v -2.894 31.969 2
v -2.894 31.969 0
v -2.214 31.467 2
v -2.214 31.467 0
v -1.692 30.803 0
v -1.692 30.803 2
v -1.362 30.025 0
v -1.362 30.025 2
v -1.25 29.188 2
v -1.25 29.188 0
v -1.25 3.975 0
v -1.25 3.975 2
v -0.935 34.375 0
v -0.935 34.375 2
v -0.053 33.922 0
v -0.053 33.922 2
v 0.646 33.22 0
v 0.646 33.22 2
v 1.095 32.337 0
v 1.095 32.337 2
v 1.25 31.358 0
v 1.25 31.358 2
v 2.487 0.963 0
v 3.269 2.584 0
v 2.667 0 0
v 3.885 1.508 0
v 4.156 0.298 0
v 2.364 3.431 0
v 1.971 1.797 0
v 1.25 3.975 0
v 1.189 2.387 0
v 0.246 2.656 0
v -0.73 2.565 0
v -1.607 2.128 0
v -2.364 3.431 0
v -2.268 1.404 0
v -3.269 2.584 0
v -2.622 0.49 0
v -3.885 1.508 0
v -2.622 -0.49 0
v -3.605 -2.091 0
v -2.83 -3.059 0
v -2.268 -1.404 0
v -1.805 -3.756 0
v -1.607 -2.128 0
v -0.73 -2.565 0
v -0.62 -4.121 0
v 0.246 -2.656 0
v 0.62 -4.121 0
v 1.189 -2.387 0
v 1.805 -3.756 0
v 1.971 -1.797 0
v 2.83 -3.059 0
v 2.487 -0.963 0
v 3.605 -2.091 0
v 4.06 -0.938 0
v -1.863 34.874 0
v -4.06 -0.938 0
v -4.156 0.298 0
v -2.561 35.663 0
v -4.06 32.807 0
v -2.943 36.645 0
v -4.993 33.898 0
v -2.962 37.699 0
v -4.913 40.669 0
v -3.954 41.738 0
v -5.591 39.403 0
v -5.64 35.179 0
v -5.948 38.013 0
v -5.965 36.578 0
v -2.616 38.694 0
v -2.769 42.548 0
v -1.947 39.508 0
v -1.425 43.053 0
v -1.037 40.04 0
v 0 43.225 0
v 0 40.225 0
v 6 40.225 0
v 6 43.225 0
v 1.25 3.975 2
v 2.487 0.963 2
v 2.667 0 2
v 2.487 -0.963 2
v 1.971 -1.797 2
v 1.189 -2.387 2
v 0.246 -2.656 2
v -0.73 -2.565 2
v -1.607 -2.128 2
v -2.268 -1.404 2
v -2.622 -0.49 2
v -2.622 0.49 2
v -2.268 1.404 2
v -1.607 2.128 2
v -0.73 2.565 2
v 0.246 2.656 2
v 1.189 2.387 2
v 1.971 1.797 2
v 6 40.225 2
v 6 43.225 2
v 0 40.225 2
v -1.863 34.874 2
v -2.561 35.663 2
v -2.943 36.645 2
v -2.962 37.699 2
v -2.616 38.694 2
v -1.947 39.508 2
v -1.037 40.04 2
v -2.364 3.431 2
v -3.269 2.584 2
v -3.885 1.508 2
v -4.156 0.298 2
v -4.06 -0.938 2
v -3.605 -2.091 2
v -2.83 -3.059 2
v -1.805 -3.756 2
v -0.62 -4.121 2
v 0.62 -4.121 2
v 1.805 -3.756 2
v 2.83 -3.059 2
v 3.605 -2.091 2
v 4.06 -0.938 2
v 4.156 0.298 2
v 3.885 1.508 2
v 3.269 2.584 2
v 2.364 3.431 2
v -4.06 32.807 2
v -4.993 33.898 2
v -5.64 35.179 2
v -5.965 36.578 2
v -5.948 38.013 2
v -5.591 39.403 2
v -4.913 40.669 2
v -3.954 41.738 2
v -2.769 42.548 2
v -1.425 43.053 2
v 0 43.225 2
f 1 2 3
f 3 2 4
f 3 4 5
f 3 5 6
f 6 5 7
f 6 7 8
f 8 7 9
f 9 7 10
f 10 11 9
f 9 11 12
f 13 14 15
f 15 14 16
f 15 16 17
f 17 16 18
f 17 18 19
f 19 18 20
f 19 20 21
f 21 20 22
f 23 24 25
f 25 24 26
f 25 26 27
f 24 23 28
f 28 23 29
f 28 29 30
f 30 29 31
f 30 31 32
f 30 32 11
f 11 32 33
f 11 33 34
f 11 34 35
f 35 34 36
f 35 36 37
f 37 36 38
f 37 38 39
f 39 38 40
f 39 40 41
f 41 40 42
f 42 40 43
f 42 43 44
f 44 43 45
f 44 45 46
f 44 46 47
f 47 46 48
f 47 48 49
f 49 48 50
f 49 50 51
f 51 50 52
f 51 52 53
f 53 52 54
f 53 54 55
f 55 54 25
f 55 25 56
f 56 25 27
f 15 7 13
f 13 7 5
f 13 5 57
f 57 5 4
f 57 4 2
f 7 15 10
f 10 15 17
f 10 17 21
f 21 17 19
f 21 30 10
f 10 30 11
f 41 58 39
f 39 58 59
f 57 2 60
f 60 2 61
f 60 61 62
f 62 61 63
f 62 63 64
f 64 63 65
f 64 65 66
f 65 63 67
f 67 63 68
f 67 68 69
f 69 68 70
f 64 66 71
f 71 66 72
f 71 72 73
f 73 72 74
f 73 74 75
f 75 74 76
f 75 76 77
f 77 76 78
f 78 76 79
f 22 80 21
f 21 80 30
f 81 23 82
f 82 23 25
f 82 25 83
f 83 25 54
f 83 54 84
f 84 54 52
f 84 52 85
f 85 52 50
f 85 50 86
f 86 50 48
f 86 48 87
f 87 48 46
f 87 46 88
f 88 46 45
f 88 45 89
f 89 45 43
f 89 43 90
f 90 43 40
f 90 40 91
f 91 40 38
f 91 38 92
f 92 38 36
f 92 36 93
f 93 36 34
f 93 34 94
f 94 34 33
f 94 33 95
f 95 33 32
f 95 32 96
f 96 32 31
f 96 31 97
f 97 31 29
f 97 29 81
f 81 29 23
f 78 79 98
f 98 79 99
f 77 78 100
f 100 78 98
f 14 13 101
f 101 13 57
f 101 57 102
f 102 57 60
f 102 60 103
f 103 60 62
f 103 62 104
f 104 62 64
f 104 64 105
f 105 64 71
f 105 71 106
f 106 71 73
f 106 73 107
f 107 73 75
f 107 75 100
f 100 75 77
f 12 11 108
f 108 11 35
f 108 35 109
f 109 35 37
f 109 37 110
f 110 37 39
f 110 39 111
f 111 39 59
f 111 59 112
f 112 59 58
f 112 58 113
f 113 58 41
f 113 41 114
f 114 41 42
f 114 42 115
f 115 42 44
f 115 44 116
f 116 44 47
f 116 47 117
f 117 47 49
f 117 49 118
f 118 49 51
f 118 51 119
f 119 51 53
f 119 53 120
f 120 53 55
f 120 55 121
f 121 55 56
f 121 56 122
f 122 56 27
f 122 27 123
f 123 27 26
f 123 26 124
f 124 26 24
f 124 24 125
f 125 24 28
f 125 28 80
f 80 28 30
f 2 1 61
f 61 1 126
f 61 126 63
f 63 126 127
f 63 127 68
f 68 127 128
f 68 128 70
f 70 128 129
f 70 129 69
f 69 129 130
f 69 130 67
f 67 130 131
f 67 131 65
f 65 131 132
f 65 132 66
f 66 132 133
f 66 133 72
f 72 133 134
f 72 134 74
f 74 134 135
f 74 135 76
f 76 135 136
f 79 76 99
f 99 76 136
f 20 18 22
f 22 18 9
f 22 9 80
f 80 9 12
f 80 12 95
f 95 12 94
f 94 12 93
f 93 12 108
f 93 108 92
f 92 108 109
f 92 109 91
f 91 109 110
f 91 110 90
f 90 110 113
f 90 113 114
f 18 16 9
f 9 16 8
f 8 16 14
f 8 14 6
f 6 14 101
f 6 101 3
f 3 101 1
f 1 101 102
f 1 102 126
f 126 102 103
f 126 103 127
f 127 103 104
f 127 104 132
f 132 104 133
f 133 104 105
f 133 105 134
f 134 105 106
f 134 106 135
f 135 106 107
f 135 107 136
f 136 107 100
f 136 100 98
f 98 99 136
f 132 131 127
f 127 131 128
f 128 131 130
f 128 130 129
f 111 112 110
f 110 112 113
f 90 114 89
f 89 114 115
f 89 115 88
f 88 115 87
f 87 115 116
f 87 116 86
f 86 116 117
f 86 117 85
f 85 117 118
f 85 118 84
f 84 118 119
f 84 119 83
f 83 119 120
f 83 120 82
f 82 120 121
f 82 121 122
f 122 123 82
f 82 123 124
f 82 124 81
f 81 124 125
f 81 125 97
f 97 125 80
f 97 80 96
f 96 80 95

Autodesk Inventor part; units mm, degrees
ref_plane "YZ Plane" through (0, 0, 0) normal (1, 0, 0) x (0, 1, 0)
ref_plane "XZ Plane" through (0, 0, 0) normal (0, 1, 0) x (-1, 0, 0)
ref_plane "XY Plane" through (0, 0, 0) normal (0, 0, 1) x (1, 0, 0)
sketch "Sketch1" plane through (0, 0, 0) normal (0, 0, 1) x (1, 0, 0)
  circle A0 centre (0, 0) radius 2.667
  circle A1 centre (0, 0) radius 4.167
  line L0 (-1.25, 3.9751) -> (1.25, 3.9751)
  line L1 (1.25, 3.9751) -> (1.25, 37.2251)
  line L2 (1.25, 37.2251) -> (-1.25, 37.2251)
  line L3 (-1.25, 37.2251) -> (-1.25, 3.9751)
  line L4 (0, 0) -> (0, 14.9208)
  circle A2 centre (0, 37.2251) radius 3
  circle A3 centre (0, 37.2251) radius 6
  line L5 (0, 43.2251) -> (6, 43.2251)
  line L6 (6, 43.2251) -> (6, 40.2251)
  line L7 (6, 40.2251) -> (0, 40.2251)
  point P0 (-1.25, 31.3567)
  point P1 (1.25, 3.9751)
  point P2 (1.25, 3.9751)
  point P3 (1.25, 34.4979)
  dimension "d1" = 8.334
  dimension "d5" = 6
  dimension "d6" = 12
  dimension "d0" = 5.334
  dimension "d2" = 1.25
  dimension "d3" = 1.25
  dimension "d4" = 33.25
  dimension "d7" = 6
extrude "Extrusion1" add sketch "Sketch1" along normal blind 2 contours L0 A1 | L0 A1 L4 | L4 A1 L0 | L3 A3 L1 A1 | A3 L7 A2 L3 | L3 A2 L1 A3 | L5 L6 L7 A3
fillet "Fillet1" radius 3.175 2 edges at (1.25, 34.4979, 1) (-1.25, 31.3567, 1)
equation "\"d2\" = d3"
properties part number "Hook"
